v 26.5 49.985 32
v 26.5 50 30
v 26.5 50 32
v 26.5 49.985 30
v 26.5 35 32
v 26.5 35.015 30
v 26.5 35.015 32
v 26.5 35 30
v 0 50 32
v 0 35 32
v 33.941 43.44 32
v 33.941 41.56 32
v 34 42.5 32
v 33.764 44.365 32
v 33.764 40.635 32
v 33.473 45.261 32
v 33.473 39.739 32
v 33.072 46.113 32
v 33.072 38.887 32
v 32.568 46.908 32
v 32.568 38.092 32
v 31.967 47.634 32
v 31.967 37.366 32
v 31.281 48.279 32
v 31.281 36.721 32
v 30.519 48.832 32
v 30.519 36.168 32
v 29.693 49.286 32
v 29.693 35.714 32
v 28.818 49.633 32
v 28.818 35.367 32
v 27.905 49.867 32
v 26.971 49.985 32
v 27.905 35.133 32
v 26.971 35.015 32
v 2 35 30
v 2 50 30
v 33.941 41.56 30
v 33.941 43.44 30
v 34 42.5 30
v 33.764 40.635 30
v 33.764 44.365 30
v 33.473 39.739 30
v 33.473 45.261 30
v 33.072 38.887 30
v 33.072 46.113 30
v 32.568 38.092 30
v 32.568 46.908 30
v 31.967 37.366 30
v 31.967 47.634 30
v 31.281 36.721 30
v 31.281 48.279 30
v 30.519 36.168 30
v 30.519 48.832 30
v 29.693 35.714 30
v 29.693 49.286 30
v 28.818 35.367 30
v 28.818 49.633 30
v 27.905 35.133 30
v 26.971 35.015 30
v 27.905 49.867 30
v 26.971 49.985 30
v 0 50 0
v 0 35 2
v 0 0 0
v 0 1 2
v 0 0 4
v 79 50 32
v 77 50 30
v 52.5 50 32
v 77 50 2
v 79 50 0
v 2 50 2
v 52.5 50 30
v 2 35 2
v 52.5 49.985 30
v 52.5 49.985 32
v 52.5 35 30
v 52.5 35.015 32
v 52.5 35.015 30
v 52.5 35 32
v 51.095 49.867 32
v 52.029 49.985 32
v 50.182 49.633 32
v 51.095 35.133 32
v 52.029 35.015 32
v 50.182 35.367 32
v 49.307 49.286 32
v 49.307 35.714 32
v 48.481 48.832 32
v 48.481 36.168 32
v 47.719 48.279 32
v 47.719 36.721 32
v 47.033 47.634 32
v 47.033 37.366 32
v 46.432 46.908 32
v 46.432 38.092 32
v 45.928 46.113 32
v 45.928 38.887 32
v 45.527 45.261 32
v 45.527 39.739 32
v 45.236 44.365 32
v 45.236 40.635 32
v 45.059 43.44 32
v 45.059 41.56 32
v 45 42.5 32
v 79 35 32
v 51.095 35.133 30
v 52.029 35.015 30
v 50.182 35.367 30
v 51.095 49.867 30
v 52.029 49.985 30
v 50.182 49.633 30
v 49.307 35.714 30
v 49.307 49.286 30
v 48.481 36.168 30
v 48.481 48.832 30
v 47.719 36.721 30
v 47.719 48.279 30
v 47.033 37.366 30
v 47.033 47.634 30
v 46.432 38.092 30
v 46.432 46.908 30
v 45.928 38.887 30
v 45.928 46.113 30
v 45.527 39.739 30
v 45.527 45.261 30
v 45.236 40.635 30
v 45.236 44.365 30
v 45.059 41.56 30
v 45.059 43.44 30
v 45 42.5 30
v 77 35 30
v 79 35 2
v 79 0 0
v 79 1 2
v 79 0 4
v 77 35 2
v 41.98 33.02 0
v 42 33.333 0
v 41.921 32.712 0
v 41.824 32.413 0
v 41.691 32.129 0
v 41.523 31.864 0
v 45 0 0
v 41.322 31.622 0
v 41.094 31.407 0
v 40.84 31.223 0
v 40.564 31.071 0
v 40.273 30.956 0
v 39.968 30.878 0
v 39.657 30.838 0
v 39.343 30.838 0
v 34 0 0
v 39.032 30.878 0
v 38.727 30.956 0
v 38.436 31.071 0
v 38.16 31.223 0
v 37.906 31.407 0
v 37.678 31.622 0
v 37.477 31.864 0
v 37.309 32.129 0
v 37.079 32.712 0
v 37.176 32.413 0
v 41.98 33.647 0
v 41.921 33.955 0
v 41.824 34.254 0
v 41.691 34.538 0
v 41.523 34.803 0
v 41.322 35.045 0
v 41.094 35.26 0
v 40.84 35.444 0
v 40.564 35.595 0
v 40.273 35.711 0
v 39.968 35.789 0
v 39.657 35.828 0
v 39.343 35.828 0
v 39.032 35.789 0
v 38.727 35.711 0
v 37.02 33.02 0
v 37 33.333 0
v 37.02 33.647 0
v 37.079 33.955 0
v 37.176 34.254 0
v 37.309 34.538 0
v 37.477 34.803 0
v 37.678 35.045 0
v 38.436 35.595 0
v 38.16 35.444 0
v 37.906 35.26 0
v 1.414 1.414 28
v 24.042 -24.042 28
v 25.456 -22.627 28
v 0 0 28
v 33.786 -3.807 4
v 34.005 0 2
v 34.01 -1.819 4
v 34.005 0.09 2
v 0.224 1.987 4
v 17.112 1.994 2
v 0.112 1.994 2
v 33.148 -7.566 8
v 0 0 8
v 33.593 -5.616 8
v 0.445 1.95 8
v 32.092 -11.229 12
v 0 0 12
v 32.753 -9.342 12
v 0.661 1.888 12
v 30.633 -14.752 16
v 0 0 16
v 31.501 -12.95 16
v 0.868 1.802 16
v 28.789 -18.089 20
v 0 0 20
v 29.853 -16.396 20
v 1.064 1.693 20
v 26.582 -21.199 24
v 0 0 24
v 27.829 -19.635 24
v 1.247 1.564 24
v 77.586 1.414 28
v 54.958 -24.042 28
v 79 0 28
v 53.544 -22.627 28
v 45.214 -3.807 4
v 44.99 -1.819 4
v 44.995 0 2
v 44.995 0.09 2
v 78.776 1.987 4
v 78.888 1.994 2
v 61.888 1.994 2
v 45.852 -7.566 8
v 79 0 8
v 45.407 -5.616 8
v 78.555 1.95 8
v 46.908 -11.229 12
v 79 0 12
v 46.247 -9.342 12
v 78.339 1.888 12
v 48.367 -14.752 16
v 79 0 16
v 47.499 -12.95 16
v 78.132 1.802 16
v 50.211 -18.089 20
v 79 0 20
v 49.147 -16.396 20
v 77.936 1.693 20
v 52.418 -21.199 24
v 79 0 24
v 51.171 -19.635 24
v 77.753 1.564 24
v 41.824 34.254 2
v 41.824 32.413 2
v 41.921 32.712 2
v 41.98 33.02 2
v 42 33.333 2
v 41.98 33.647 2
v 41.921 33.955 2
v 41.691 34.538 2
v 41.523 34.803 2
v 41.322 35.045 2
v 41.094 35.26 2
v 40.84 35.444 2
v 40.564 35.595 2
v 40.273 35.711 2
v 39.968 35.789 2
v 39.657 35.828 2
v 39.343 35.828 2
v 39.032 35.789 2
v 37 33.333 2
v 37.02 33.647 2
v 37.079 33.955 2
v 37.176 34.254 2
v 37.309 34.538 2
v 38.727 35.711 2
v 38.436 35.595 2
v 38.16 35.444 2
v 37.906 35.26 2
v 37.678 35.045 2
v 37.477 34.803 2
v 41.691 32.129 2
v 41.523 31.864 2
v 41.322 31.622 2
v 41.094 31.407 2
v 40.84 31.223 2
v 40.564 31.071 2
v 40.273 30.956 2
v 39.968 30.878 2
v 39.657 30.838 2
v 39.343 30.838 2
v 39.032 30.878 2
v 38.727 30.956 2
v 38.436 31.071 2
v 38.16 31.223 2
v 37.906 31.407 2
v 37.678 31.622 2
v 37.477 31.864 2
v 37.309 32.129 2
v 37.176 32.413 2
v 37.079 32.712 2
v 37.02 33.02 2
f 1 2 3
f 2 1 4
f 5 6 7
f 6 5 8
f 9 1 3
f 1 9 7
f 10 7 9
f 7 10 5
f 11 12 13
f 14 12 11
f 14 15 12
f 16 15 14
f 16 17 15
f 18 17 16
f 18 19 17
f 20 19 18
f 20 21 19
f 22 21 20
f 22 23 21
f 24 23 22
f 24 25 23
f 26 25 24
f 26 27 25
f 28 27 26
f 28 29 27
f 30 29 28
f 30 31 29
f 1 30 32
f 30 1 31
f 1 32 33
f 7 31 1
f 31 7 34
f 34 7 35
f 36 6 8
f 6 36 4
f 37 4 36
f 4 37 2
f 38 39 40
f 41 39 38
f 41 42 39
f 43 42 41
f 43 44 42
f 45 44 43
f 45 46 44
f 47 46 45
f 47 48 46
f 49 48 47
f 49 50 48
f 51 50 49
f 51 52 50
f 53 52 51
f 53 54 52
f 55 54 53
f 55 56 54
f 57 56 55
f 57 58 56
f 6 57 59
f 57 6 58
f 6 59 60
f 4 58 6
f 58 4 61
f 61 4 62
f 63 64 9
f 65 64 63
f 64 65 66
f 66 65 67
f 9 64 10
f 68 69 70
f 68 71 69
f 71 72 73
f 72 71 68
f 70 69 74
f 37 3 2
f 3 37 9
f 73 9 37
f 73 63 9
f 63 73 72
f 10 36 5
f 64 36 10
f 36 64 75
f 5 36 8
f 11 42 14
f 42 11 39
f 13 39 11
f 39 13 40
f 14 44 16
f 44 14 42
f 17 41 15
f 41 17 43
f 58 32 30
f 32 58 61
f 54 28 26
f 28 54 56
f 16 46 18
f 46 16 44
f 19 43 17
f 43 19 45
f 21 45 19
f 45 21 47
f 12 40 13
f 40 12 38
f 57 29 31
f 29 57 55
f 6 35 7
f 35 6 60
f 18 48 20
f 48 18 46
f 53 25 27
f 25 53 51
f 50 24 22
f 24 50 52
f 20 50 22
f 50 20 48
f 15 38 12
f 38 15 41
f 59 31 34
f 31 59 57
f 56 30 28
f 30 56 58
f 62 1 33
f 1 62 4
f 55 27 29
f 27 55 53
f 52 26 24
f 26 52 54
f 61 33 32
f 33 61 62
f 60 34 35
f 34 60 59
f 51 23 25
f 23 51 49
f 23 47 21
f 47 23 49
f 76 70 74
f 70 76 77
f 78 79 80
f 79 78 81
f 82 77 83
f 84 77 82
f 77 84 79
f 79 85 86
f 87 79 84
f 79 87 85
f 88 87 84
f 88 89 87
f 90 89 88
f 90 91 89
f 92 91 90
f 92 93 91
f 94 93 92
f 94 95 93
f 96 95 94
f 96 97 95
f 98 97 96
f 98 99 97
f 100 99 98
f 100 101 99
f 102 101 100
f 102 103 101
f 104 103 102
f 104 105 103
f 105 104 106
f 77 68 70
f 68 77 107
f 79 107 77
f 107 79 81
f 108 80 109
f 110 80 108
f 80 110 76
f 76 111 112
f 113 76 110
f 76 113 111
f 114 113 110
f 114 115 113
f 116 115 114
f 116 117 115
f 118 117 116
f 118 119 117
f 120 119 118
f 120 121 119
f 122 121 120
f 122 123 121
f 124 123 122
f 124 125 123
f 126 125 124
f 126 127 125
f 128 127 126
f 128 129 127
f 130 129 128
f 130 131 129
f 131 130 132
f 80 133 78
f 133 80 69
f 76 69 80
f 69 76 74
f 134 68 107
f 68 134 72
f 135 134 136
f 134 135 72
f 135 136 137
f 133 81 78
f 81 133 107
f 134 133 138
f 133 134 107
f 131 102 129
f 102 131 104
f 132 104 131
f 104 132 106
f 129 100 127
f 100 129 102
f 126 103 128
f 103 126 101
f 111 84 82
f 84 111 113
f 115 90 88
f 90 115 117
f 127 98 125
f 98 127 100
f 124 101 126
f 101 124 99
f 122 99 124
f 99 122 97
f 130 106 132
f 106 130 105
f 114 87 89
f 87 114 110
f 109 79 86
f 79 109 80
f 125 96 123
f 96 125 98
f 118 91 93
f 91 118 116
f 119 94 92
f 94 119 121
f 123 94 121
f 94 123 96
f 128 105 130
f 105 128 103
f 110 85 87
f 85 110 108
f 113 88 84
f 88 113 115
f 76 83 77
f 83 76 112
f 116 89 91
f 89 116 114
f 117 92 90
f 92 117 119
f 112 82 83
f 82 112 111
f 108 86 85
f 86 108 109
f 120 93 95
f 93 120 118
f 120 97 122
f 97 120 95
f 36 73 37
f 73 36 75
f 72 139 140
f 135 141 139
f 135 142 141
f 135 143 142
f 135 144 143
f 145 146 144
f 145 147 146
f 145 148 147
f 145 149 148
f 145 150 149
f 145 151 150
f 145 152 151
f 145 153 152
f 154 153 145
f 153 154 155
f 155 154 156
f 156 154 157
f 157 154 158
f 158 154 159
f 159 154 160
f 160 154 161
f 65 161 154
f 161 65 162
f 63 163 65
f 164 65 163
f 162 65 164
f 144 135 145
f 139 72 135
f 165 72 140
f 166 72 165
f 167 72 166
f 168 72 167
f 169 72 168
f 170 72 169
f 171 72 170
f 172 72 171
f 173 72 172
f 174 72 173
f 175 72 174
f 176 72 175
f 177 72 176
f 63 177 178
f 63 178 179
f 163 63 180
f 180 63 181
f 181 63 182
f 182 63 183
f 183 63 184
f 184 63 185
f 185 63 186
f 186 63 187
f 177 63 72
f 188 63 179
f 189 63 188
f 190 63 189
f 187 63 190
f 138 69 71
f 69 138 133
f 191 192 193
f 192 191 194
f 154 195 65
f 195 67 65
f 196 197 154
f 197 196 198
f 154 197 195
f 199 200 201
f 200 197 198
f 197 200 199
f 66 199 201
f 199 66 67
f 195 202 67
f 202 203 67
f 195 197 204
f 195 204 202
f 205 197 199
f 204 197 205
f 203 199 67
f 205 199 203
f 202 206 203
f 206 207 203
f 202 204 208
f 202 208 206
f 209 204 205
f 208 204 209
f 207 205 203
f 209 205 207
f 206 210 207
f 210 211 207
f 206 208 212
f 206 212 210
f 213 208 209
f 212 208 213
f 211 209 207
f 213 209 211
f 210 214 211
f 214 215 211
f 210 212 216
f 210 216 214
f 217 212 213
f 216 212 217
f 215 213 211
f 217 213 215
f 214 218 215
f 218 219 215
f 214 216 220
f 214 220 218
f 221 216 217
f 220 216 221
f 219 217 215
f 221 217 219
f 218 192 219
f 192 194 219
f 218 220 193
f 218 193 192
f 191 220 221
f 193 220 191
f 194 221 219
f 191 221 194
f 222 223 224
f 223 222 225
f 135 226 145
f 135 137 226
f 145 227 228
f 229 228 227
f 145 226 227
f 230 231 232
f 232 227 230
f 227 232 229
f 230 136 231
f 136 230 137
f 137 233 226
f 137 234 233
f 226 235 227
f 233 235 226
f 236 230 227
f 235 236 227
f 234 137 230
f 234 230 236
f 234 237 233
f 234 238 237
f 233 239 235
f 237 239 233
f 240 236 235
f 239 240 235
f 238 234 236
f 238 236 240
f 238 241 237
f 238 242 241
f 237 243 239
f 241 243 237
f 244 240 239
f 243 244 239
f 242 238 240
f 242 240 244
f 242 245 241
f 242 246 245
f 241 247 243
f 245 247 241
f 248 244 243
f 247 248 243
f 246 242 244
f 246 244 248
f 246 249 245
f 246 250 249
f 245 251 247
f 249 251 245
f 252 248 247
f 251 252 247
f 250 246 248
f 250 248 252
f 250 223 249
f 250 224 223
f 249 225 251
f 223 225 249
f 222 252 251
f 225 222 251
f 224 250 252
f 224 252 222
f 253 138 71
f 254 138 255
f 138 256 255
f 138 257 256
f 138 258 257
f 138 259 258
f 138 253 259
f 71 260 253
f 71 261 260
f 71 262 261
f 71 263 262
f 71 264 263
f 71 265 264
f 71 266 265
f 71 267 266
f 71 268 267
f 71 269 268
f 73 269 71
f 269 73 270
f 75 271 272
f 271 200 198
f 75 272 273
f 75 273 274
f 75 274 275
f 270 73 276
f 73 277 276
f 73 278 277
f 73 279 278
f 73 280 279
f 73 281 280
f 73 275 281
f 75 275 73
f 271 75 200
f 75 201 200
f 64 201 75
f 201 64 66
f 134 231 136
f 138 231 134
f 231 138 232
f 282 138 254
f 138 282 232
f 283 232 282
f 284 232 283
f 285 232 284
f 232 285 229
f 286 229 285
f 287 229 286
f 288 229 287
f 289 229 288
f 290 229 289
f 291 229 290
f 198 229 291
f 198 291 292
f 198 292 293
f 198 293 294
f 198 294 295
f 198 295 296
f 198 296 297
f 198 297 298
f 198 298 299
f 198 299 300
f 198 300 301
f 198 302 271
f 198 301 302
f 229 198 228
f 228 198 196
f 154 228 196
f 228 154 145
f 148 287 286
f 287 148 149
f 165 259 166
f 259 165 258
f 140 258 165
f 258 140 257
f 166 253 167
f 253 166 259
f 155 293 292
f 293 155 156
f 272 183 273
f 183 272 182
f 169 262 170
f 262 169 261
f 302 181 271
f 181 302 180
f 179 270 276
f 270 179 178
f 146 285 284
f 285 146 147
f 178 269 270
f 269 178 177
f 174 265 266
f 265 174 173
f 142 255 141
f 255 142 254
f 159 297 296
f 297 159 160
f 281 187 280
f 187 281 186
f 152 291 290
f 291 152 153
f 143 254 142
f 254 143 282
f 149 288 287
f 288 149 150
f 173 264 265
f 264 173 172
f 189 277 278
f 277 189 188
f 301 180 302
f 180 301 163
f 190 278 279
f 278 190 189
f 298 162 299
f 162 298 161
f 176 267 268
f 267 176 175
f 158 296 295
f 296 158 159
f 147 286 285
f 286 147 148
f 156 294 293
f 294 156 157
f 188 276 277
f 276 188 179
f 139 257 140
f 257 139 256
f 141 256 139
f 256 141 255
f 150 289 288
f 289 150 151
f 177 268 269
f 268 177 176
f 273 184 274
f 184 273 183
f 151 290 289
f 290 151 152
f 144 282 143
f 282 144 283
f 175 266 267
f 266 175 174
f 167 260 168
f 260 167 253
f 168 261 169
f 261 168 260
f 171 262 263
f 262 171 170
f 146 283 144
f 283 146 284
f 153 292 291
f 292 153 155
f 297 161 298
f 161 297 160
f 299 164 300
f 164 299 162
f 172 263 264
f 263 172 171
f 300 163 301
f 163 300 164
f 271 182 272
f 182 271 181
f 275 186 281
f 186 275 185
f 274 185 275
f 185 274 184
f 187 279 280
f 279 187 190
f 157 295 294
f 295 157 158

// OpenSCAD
$fn = 50;
sponge_width = 74;
sponge_depth = 23;
sponge_height = 95;

extra_space = 5;
divider_gap = 10;
wall_thickness = 2;
holder_height = 15;
screw_hole_radius = 2.5;

width = sponge_width + extra_space;
height = sponge_height + extra_space;
depth = sponge_depth + extra_space;
wall = wall_thickness * 2; 
twist_angle = 45;
subwall_length = floor((width - divider_gap) / 2); 

module leaf(){
   linear_extrude(depth, twist=twist_angle) square([subwall_length , wall_thickness]);
}

module sidecover(){
    holder_radius = holder_height / 2;
    union(){
        cube([subwall_length - holder_radius , holder_height, wall_thickness]);
        translate([subwall_length - holder_radius, holder_radius, 0]) cylinder(r=holder_radius, h =wall_thickness);
    }
}

module holder() {
    ystart = (height / 2) - holder_height;
    translate([0,ystart, 0]) cube([wall_thickness, holder_height, depth + wall_thickness]);
    translate([width - wall_thickness,ystart, 0]) cube([wall_thickness, holder_height, depth + wall_thickness]);
    translate([0, ystart, depth+wall_thickness]) union(){
        sidecover();
        translate([width, 0,0]) mirror([1,0,0]) sidecover(); 
    }
}
difference(){
    union(){
        leaf();
        translate([width, 0]) mirror([1,0]) leaf();
        cube([width, height/2, wall_thickness]);
        holder();
    }
    translate([width /2, height / 3, -1])cylinder(r=screw_hole_radius, h=wall_thickness + 2);
}
